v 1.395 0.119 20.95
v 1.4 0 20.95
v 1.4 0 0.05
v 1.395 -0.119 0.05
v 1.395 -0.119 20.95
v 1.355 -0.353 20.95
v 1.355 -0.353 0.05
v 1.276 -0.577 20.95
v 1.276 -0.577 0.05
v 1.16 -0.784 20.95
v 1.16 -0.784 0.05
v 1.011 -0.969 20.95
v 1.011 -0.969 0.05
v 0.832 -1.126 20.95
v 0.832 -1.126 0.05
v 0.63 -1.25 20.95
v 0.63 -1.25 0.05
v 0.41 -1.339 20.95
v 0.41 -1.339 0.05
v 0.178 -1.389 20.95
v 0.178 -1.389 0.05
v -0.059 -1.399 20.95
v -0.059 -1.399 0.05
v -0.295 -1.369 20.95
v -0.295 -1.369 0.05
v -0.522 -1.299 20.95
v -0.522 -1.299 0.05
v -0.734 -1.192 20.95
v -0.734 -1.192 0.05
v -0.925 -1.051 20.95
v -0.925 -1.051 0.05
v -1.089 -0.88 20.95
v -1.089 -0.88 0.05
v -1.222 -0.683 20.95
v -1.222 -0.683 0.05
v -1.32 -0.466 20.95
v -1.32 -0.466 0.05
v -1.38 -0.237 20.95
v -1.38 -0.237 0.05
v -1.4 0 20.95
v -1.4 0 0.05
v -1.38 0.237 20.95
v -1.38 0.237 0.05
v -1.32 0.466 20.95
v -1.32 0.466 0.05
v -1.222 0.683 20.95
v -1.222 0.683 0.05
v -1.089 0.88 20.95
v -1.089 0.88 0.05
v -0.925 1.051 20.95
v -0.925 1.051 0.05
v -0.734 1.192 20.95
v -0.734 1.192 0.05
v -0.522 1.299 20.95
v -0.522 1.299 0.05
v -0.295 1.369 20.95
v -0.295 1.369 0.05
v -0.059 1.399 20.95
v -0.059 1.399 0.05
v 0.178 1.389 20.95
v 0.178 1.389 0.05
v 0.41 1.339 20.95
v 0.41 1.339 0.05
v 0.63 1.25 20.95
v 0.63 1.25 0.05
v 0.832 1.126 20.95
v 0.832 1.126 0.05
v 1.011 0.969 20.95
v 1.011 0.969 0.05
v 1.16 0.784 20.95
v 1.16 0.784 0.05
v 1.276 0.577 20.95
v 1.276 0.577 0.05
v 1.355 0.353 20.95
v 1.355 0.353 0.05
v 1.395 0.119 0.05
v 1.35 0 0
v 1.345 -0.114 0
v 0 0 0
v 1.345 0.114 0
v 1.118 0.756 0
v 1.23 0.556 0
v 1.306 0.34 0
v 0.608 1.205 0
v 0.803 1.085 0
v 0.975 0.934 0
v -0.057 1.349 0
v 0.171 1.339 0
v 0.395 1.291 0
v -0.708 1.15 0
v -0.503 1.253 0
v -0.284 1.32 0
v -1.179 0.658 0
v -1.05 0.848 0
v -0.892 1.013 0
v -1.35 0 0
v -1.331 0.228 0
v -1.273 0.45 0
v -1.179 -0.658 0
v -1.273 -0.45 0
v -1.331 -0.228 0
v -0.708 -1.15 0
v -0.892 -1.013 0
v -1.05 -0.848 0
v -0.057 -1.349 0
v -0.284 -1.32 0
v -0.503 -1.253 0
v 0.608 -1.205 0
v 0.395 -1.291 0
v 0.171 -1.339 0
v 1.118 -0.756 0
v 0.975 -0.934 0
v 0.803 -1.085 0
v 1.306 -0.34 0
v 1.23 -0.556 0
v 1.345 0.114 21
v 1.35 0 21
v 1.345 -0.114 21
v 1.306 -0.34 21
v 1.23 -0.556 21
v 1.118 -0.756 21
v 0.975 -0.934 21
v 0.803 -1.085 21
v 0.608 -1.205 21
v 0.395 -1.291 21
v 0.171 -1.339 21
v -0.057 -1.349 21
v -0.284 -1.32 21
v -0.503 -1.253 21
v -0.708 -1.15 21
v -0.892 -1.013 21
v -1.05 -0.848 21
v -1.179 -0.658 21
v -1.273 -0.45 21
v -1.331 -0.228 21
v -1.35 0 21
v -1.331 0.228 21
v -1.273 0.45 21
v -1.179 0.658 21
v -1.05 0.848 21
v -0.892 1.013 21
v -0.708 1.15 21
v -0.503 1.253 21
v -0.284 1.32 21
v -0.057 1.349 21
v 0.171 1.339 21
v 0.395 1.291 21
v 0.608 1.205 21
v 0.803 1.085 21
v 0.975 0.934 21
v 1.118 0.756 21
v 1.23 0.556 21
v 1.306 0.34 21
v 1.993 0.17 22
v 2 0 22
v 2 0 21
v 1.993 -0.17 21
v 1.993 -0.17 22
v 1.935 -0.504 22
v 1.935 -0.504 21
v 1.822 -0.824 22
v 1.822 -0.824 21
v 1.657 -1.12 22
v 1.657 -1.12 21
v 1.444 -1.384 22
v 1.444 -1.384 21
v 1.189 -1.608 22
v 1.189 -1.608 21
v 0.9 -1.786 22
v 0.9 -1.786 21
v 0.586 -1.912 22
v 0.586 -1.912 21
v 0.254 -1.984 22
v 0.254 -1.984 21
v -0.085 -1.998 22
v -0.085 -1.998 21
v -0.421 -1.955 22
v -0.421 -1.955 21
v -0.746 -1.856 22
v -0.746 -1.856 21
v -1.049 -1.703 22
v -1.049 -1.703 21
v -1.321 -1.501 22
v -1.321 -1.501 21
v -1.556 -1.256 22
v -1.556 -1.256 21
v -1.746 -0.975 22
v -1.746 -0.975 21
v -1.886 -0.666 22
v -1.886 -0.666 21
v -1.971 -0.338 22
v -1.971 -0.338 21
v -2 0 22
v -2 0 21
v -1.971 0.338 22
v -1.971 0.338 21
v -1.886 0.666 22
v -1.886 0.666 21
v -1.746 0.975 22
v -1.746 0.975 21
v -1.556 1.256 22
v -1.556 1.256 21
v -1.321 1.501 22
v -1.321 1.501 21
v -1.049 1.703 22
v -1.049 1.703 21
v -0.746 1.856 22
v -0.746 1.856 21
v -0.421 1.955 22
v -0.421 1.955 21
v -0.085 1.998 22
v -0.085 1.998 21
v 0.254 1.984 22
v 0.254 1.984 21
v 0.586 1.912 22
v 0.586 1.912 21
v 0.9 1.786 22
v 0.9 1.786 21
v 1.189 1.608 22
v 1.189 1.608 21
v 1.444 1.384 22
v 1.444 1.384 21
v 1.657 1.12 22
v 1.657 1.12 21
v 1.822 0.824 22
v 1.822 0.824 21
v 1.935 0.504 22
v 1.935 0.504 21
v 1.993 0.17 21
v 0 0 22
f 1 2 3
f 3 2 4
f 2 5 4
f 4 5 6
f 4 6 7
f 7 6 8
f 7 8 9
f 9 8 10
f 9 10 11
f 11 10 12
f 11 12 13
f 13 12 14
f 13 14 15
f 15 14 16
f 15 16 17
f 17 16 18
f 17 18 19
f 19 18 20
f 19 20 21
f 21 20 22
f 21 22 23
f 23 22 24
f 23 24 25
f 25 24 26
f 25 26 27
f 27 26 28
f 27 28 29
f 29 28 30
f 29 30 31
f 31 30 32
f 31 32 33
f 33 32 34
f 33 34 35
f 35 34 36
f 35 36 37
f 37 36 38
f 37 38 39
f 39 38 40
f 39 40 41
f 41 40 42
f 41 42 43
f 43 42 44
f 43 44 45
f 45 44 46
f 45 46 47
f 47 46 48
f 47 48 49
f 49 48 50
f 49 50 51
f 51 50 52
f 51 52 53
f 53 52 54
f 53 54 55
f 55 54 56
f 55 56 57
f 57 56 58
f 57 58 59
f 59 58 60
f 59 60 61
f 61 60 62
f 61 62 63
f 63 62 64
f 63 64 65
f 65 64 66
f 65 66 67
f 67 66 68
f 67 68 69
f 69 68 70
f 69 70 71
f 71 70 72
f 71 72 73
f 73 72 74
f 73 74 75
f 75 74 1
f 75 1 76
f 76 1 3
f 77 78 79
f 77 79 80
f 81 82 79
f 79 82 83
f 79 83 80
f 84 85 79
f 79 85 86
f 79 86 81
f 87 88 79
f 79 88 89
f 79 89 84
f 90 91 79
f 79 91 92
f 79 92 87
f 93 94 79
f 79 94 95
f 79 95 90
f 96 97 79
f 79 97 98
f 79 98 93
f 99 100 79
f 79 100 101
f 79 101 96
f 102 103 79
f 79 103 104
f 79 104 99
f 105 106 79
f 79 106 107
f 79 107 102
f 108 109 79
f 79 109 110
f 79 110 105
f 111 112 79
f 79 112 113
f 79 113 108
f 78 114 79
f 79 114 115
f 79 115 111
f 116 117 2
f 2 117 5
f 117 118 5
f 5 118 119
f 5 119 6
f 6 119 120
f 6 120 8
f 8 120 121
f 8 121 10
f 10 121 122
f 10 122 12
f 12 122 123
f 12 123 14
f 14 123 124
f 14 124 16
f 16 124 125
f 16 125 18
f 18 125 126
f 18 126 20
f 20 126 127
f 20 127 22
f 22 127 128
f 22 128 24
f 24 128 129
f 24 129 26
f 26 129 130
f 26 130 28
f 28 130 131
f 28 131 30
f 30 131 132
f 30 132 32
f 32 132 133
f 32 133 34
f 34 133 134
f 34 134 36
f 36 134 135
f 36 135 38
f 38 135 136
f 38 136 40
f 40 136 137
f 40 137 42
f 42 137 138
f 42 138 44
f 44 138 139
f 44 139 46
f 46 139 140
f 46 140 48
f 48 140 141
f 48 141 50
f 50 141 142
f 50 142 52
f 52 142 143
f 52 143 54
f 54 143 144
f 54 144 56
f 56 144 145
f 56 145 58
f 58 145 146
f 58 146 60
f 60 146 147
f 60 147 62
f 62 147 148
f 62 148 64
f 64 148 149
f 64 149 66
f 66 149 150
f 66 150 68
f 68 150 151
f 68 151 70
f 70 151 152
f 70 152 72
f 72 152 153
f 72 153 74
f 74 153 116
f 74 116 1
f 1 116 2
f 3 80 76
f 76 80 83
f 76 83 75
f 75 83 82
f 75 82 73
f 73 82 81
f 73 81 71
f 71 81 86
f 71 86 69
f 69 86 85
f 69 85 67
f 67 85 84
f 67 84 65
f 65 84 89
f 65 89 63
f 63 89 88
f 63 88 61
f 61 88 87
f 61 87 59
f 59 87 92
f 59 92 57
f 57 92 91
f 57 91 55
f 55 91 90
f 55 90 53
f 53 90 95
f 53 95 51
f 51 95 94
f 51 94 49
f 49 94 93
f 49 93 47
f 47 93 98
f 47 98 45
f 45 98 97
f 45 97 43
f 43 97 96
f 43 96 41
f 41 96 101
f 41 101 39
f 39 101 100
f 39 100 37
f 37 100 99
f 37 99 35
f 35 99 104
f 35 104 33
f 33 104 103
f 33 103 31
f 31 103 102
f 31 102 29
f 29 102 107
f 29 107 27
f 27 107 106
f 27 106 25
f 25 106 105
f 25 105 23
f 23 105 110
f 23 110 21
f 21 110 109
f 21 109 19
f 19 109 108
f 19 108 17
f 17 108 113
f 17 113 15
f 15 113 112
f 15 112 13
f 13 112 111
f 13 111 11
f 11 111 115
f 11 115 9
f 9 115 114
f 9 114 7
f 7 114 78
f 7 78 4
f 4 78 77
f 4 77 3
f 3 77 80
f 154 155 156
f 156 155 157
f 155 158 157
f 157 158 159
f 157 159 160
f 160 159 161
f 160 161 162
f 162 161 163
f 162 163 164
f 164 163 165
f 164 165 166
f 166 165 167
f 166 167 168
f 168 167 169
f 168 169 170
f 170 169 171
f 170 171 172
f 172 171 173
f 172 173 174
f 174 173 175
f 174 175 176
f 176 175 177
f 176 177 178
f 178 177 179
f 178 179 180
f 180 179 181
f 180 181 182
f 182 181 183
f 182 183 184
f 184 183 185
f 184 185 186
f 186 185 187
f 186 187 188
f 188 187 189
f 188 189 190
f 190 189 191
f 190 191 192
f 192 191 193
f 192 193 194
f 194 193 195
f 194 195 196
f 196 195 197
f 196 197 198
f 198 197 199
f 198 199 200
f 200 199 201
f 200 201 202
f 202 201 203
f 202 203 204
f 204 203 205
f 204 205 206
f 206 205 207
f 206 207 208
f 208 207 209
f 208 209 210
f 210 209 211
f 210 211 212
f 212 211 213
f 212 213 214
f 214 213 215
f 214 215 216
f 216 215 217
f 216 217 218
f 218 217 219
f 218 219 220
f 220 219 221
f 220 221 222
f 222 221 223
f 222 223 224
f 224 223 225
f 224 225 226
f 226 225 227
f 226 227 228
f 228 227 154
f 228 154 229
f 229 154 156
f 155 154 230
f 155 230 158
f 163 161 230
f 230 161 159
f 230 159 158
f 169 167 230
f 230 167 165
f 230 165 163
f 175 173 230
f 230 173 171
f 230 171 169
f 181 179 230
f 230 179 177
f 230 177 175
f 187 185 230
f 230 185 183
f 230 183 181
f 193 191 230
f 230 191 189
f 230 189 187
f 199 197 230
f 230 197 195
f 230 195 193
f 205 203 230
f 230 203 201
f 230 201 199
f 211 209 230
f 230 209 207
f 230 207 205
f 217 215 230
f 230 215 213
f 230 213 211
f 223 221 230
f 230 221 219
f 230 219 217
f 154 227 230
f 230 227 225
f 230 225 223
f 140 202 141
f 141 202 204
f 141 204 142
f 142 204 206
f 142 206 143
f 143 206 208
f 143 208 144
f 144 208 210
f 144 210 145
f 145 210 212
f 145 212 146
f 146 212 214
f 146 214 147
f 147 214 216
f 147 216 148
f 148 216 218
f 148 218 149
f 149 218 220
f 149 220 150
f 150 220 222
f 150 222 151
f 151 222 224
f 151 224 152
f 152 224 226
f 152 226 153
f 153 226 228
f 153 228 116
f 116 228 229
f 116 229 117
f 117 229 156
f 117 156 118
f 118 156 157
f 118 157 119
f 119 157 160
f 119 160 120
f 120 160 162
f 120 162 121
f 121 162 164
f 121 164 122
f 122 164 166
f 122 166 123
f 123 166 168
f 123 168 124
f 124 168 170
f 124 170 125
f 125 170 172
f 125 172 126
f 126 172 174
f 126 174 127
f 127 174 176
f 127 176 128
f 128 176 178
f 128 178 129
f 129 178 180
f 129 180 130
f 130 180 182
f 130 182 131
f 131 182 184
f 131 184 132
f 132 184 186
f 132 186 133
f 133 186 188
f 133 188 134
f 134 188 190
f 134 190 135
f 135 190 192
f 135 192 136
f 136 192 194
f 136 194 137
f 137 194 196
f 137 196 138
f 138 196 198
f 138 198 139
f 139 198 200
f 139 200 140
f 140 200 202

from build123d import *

# Parameters (mm, degrees)
SKETCH2_R           = 1.4
BOSS_EXTRUDE1_DEPTH = 21
CHAMFER2_SIZE       = 0.05
SKETCH3_R           = 2
BOSS_EXTRUDE2_DEPTH = 1


with BuildPart() as part:
    # Sketch2 → Boss-Extrude1 (new body)
    with BuildSketch(Plane.XY):
        with Locations(Location((0, 0, 0), (0, 0, 180))):
            Circle(SKETCH2_R)
    extrude(amount=BOSS_EXTRUDE1_DEPTH)

    # Chamfer2
    chamfer2_edges = [part.edges().sort_by_distance(p)[0] for p in [
        (1.4, 0, 0),
        (1.4, 0, 21),
    ]]
    chamfer(chamfer2_edges, length=CHAMFER2_SIZE)

    # Sketch3 → Boss-Extrude2 (add)
    with BuildSketch(Plane.XY.offset(21)):
        Circle(SKETCH3_R)
    extrude(amount=BOSS_EXTRUDE2_DEPTH)


solid = part.part
